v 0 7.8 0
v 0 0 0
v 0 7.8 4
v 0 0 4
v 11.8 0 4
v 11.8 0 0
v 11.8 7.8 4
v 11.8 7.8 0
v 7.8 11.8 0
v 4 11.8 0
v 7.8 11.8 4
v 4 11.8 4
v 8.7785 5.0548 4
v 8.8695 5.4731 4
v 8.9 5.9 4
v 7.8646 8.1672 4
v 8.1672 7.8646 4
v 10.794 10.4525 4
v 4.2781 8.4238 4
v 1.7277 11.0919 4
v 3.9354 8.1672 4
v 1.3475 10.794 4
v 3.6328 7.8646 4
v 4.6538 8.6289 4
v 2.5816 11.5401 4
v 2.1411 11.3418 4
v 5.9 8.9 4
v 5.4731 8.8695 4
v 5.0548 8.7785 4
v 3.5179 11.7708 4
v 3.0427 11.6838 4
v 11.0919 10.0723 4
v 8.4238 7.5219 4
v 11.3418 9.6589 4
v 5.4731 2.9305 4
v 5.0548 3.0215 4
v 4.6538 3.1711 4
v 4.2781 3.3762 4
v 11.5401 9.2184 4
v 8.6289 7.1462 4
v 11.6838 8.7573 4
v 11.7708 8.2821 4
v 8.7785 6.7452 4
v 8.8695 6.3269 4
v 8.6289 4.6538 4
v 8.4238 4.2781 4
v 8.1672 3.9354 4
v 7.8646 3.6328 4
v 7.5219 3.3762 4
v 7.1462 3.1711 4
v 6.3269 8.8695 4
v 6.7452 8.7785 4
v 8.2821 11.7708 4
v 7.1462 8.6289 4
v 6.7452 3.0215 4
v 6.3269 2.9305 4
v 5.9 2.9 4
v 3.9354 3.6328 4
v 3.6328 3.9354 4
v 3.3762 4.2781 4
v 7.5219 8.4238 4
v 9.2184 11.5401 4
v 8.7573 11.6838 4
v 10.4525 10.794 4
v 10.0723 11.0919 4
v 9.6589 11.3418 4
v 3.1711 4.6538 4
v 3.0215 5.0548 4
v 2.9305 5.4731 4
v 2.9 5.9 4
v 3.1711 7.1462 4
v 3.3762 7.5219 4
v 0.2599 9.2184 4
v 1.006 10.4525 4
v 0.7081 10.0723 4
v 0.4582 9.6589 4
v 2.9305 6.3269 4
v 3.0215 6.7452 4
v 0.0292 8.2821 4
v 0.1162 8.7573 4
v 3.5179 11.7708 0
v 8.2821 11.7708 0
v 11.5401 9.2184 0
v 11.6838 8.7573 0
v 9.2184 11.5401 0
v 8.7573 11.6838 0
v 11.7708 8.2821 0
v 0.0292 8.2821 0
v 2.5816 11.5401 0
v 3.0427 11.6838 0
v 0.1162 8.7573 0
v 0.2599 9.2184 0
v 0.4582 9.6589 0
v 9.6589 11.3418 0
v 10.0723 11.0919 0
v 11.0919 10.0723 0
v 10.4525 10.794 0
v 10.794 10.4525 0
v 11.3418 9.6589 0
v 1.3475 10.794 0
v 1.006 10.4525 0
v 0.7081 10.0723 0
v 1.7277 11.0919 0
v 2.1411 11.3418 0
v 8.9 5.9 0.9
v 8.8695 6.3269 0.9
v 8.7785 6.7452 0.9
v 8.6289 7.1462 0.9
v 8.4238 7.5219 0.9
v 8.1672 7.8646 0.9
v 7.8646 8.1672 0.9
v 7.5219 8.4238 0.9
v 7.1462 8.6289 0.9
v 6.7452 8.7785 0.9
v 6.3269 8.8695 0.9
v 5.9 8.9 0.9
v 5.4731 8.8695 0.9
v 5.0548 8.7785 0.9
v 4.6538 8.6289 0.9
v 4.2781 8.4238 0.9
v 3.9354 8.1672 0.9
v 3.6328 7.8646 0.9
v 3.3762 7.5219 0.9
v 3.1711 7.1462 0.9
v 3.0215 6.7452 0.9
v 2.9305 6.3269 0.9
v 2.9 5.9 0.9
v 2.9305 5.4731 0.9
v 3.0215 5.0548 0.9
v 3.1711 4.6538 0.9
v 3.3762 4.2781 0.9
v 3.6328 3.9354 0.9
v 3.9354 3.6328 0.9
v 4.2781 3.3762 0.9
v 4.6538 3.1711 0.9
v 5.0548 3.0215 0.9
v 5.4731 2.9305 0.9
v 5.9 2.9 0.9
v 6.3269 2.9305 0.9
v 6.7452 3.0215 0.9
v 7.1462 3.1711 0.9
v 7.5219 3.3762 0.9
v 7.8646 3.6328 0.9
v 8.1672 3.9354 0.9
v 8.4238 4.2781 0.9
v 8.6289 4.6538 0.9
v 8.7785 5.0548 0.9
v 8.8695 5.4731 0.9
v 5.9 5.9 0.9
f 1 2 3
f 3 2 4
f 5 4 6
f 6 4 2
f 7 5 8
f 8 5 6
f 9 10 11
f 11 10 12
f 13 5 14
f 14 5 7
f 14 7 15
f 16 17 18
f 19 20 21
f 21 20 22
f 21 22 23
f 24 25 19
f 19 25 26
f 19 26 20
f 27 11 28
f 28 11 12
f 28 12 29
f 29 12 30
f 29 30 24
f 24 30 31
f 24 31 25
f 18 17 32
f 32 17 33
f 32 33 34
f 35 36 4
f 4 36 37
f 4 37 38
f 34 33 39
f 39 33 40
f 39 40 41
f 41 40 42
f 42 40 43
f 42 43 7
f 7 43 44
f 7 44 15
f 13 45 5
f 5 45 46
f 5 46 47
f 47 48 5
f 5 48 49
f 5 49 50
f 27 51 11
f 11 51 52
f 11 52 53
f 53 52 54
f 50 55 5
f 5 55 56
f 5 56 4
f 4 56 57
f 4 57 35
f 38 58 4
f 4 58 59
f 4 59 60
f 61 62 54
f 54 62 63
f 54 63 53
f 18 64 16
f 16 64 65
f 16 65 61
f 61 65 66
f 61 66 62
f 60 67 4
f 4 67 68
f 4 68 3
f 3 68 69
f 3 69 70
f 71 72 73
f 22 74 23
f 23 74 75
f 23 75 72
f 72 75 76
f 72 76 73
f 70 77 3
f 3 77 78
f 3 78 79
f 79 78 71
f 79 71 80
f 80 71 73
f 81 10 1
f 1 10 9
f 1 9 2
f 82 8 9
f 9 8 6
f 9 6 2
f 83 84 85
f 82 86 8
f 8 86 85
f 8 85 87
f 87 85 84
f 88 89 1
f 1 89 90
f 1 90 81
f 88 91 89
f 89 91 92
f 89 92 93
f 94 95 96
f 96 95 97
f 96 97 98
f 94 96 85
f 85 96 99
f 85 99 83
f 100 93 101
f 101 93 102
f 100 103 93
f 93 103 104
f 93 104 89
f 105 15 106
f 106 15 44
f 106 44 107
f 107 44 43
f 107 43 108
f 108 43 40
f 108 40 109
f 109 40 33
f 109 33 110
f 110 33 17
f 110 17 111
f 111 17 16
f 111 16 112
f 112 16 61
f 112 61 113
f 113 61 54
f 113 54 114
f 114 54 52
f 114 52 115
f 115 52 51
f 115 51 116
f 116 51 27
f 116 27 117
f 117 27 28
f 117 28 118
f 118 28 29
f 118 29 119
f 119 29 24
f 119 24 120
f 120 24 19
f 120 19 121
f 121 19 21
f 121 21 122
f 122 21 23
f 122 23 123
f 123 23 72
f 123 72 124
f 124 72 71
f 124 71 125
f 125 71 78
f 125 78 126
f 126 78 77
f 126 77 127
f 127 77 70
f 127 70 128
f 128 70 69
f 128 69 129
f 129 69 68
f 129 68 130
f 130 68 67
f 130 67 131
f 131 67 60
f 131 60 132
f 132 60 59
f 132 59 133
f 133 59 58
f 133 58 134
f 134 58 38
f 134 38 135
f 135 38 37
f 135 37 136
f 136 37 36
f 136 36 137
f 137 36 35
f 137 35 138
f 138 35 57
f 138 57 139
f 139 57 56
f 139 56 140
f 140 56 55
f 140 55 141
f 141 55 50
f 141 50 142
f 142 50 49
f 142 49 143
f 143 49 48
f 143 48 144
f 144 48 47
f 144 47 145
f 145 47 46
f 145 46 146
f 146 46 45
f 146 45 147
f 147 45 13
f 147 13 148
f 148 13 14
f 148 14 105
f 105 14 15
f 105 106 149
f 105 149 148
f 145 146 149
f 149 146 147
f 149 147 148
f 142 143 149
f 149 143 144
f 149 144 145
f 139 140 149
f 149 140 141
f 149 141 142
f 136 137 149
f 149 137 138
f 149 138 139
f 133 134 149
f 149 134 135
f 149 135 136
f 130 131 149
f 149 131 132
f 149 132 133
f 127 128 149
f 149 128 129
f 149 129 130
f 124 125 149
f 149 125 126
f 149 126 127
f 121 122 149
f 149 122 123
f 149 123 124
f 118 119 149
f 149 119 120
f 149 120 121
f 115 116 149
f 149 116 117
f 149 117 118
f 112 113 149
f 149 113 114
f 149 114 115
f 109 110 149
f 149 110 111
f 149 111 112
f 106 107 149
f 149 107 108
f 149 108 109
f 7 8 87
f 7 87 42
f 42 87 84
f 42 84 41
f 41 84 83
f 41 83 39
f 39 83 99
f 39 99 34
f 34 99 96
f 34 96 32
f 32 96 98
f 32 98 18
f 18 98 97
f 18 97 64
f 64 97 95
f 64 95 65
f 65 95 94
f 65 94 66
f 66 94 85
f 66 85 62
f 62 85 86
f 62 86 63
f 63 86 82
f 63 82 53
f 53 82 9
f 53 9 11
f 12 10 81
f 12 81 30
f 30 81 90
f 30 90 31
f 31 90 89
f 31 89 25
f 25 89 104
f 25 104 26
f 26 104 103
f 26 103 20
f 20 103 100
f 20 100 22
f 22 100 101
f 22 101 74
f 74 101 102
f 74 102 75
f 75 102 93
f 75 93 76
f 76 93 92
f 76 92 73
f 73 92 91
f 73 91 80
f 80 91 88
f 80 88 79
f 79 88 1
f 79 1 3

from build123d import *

# Parameters (mm, degrees)
SKETCH1_W           = 11.8
SKETCH1_H           = 11.8
BOSS_EXTRUDE1_DEPTH = 4
SKETCH2_R           = 3
CUT_EXTRUDE1_DEPTH  = 3.1
FILLET1_R           = 4


with BuildPart() as part:
    # Sketch1 → Boss-Extrude1 (new body)
    with BuildSketch(Plane.XY):
        with Locations((5.9, 5.9)):
            Rectangle(SKETCH1_W, SKETCH1_H)
    extrude(amount=BOSS_EXTRUDE1_DEPTH)

    # Sketch2 → Cut-Extrude1 (cut)
    with BuildSketch(Plane.XY.offset(4)):
        with Locations((5.9, 5.9)):
            Circle(SKETCH2_R)
    extrude(amount=-CUT_EXTRUDE1_DEPTH, mode=Mode.SUBTRACT)

    # Fillet1
    fillet1_edges = [part.edges().sort_by_distance(p)[0] for p in [
        (0, 11.8, 2),
        (11.8, 11.8, 2),
    ]]
    fillet(fillet1_edges, radius=FILLET1_R)


solid = part.part
